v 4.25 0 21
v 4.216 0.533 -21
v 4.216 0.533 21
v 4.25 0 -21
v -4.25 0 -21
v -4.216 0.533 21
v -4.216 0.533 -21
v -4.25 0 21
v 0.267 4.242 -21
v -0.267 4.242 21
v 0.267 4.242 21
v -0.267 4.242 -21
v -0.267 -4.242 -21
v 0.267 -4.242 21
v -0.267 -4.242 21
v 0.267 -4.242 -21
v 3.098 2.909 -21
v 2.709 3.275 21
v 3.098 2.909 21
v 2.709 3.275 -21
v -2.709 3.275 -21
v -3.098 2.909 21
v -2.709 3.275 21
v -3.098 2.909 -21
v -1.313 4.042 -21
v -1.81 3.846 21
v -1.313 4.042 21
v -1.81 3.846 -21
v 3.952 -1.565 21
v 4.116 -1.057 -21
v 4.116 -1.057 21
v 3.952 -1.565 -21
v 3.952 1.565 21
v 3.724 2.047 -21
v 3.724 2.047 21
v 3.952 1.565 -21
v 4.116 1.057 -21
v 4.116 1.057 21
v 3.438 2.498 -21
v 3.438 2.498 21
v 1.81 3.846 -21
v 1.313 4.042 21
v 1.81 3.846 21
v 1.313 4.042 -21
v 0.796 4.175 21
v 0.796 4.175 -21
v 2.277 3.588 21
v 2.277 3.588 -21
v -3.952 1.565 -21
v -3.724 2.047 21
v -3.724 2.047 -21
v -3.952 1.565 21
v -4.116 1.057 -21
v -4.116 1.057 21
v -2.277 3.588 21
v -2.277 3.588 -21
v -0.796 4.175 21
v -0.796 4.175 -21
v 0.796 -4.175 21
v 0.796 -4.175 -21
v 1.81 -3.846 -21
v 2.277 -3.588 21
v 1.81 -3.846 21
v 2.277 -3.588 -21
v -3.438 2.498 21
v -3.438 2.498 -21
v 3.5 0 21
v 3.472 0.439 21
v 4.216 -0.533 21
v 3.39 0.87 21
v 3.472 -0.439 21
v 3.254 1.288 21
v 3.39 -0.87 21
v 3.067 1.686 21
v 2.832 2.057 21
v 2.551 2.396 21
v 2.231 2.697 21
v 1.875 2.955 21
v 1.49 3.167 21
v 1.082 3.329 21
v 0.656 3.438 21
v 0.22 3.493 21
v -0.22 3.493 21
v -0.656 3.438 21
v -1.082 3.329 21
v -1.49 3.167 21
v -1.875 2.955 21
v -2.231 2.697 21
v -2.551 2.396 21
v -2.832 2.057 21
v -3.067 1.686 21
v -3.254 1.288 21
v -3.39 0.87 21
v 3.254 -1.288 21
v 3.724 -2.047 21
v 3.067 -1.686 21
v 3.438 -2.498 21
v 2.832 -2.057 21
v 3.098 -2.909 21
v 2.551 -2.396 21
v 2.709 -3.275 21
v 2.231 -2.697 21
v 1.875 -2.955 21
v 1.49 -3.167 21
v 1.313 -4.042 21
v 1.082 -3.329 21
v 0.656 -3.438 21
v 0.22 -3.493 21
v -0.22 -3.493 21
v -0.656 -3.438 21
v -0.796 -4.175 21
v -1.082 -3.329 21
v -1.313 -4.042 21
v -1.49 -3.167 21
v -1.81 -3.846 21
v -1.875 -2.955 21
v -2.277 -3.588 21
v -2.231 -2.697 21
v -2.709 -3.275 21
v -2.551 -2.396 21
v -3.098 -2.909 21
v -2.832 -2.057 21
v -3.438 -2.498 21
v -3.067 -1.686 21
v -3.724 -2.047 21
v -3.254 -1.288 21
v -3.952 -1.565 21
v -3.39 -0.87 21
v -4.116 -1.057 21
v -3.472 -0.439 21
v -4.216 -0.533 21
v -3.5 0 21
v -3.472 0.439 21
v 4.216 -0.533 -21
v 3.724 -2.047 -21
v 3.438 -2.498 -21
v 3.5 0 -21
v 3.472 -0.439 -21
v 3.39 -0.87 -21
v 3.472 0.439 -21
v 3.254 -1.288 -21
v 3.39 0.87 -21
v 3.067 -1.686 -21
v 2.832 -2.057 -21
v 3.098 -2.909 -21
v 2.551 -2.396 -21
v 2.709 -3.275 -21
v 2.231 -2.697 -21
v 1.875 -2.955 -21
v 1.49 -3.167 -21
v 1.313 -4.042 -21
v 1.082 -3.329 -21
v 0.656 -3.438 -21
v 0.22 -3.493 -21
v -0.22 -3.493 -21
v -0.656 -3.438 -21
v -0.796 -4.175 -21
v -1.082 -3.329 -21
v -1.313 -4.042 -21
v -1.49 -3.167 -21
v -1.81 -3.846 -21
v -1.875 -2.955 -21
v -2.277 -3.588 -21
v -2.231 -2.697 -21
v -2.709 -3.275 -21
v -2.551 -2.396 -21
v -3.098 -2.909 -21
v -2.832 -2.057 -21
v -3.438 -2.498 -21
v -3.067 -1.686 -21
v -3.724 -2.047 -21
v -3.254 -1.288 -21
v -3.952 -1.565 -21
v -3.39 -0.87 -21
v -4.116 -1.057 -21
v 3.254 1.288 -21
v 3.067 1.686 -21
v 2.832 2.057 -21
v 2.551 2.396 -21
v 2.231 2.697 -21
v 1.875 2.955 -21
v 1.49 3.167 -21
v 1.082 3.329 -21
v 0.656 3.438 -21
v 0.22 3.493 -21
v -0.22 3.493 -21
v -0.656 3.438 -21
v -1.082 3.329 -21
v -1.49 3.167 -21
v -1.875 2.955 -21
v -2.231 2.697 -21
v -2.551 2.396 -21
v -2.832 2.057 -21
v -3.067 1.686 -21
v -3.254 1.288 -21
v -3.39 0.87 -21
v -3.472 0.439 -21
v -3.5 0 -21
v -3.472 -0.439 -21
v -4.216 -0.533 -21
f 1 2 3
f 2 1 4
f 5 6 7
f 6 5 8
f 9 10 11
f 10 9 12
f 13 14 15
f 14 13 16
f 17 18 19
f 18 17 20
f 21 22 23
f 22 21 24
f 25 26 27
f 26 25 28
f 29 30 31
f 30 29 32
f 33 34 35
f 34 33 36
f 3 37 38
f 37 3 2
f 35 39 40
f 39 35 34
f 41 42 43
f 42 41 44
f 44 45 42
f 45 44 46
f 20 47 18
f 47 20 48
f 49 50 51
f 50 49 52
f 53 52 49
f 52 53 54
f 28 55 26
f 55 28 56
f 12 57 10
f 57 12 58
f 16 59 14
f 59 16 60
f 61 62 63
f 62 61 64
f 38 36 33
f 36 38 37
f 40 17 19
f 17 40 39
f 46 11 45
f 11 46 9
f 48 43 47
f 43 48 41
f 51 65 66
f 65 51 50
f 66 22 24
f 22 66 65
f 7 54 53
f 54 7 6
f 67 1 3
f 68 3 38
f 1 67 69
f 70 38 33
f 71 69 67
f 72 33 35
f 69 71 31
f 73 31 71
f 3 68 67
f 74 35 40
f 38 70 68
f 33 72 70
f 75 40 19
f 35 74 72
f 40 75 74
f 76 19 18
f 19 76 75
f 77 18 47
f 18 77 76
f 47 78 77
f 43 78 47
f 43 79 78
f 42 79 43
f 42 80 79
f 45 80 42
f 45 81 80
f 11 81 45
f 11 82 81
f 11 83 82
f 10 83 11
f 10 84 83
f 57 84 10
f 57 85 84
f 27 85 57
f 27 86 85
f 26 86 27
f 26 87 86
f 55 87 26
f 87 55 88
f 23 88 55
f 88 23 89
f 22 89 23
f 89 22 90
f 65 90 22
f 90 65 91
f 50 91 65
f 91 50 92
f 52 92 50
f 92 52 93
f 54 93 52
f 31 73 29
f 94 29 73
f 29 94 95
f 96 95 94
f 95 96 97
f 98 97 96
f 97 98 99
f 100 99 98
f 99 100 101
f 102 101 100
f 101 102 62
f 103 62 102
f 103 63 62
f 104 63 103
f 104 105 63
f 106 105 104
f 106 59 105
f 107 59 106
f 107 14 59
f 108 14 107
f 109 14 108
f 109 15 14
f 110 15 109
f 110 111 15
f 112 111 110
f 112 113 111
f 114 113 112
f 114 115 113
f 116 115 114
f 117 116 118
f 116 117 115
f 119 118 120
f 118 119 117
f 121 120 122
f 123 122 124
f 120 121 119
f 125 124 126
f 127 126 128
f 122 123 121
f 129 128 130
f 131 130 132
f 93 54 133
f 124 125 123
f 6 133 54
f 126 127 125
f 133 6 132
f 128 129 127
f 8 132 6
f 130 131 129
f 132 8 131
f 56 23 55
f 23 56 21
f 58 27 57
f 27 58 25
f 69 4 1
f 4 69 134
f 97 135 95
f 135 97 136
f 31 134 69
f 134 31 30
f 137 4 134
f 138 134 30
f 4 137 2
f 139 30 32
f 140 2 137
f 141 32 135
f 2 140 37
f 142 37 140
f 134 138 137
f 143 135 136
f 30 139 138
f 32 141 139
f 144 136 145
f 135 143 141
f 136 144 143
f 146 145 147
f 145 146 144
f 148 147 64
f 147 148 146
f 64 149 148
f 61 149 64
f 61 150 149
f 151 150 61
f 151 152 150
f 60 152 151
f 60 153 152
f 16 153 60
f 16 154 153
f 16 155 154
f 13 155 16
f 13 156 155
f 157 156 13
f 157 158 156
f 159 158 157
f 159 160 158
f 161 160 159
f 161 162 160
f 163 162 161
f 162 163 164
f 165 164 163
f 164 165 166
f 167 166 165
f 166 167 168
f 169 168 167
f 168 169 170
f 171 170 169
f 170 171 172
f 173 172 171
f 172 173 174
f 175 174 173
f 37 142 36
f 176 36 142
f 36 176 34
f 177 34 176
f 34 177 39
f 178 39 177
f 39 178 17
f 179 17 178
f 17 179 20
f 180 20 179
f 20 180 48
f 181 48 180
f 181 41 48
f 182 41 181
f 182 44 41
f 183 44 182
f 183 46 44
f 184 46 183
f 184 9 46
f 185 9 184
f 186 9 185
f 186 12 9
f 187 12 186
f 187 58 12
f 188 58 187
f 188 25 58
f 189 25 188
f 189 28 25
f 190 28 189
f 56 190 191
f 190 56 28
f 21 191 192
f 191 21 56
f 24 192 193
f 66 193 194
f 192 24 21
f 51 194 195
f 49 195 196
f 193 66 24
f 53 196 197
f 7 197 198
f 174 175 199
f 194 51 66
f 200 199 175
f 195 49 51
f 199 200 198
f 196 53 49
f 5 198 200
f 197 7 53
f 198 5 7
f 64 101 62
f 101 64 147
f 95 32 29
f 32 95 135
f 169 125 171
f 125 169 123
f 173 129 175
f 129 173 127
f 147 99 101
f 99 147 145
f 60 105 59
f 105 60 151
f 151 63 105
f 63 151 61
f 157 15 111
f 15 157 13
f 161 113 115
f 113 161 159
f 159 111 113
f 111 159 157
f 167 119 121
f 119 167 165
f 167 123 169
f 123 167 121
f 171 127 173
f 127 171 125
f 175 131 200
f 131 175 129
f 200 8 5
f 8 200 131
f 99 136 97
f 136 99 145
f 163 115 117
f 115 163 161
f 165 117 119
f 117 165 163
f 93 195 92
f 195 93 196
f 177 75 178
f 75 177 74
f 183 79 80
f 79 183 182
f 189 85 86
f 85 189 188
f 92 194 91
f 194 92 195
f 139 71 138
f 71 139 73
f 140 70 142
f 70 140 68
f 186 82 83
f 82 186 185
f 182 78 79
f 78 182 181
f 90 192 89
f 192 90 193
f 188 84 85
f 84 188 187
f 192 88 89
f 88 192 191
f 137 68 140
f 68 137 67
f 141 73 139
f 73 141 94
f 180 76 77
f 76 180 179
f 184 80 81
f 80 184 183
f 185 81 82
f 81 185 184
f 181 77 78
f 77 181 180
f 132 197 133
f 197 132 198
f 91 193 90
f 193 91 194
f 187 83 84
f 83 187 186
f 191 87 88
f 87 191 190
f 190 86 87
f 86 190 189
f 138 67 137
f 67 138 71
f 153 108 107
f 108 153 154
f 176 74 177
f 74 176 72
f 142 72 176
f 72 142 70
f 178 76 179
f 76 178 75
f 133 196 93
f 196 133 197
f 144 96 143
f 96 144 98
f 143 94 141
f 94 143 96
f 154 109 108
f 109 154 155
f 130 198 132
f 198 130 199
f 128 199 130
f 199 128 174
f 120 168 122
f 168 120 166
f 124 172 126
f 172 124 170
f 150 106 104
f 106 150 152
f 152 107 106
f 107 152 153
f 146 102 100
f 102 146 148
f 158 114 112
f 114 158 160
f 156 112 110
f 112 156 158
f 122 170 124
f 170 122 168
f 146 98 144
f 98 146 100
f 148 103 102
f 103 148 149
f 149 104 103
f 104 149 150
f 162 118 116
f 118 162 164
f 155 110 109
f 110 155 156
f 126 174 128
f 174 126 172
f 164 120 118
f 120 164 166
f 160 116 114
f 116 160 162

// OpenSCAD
$fn = 50;


difference() {
	union() {
		translate(v = [0, 0, -21.0000000000]) {
			cylinder(h = 42, r = 4.2500000000);
		}
	}
	union() {
		translate(v = [0, 0, -100.0000000000]) {
			cylinder(h = 200, r = 3.5000000000);
		}
	}
}
